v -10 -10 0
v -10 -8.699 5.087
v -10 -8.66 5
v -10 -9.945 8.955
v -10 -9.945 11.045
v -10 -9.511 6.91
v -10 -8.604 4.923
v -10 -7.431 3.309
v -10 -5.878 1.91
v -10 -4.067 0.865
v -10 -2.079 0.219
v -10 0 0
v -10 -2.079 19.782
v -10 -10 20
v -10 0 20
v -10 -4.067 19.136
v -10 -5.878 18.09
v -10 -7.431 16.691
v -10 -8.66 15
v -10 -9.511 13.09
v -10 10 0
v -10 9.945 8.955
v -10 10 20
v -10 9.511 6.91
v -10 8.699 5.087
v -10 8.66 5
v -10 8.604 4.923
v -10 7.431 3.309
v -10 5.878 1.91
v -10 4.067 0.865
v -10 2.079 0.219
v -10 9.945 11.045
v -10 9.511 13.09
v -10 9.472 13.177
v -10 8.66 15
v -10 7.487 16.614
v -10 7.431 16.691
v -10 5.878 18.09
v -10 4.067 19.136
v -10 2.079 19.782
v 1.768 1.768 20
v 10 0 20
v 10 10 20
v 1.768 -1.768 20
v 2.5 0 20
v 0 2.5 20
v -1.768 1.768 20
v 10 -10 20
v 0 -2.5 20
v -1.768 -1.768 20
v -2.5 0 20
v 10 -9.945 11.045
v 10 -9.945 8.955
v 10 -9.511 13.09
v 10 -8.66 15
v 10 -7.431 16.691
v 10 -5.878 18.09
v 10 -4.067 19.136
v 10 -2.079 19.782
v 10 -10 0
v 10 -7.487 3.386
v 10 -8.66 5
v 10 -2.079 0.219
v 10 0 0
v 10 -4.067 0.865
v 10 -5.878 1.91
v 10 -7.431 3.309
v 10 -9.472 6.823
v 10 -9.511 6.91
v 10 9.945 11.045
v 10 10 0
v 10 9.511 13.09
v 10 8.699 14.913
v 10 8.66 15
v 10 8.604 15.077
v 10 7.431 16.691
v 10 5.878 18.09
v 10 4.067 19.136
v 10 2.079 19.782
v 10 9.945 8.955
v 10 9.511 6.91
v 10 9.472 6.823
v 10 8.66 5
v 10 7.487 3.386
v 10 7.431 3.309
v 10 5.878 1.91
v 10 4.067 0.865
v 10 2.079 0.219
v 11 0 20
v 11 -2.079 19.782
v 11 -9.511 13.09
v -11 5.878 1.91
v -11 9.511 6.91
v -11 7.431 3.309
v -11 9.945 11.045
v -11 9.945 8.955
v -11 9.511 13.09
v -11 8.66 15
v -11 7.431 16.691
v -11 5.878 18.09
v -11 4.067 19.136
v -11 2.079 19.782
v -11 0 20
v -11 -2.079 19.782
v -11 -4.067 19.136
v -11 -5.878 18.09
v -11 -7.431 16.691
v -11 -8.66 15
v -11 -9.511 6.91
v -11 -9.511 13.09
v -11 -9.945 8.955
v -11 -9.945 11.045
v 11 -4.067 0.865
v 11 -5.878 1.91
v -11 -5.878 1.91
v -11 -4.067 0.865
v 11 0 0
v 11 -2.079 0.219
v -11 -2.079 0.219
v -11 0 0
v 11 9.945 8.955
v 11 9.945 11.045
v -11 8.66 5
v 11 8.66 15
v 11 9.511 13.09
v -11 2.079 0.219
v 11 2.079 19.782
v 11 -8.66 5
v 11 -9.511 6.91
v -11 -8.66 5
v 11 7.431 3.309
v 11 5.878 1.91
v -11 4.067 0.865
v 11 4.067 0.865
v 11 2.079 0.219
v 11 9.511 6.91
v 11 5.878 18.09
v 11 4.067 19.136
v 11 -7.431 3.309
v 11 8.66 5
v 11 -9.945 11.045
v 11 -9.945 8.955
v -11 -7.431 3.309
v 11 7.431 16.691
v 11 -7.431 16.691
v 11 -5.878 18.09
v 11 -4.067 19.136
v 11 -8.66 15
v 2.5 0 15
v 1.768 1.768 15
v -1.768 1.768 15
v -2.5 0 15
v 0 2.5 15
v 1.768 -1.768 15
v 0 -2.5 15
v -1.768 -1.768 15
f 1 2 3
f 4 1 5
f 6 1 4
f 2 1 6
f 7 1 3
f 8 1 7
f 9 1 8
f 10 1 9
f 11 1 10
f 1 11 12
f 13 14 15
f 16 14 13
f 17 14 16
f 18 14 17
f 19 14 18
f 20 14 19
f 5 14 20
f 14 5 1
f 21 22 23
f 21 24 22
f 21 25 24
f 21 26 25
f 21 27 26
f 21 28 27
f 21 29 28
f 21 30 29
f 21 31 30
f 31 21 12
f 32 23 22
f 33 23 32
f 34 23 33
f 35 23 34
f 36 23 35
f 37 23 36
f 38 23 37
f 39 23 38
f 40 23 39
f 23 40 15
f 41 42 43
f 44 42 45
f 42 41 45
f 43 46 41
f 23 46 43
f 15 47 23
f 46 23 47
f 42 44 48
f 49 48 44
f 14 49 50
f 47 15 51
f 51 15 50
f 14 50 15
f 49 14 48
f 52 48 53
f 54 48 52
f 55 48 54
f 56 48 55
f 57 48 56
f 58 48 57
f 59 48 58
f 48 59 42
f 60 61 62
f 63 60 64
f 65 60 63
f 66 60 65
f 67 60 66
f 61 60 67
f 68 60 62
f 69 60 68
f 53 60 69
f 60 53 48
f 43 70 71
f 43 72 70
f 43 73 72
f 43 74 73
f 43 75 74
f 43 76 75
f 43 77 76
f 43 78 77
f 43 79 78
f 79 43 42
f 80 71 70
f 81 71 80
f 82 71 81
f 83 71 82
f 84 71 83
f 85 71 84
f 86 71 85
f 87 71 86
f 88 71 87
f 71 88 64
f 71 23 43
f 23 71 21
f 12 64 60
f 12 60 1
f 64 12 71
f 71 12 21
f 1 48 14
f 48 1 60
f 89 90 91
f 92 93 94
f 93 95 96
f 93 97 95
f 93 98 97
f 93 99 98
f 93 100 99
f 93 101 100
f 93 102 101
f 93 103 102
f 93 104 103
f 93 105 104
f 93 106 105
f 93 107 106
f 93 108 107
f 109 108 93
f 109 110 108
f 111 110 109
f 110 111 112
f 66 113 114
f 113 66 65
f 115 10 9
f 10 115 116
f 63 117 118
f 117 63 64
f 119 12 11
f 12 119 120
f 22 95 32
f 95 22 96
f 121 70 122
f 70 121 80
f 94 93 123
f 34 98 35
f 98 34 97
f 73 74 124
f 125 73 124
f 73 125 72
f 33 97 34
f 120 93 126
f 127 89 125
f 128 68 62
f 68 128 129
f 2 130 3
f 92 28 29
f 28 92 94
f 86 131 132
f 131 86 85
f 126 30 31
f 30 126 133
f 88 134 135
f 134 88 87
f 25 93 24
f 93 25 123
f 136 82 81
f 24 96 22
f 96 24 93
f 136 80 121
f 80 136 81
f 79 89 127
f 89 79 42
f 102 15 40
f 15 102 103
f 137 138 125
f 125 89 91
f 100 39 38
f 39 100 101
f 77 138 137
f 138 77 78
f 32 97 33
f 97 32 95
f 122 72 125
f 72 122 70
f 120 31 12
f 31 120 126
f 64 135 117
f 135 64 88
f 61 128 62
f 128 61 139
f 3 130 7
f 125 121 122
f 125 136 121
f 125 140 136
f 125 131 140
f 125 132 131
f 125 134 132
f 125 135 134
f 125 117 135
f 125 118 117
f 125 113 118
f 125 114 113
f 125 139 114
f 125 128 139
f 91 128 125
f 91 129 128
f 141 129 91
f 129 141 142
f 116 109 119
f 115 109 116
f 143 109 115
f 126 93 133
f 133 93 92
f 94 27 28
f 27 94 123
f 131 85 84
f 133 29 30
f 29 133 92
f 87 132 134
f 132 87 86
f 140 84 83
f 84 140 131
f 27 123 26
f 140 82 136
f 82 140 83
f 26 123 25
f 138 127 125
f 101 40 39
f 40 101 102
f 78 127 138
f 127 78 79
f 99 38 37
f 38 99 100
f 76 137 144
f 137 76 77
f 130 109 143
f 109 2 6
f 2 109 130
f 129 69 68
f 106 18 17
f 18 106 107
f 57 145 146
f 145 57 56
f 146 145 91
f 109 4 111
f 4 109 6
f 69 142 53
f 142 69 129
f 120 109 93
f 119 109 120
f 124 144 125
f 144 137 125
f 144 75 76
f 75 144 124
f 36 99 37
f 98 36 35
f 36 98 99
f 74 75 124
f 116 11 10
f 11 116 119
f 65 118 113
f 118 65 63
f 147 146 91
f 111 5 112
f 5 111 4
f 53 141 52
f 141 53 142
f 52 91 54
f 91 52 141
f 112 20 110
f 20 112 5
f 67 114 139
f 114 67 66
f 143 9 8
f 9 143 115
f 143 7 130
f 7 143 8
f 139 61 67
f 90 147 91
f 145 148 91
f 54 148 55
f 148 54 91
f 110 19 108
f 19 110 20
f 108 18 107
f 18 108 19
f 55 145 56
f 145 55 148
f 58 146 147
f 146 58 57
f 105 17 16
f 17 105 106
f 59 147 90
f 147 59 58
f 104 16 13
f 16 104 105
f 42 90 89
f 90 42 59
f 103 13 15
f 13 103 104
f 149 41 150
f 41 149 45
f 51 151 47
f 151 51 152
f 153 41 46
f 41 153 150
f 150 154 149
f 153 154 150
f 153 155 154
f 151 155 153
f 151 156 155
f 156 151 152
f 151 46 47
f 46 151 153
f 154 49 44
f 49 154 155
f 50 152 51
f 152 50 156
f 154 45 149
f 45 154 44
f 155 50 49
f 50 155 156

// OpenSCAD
cube_size = 20; // [10:Small,20:Medium,30:Large]

hole_diameter = 5; 
hole_radius = hole_diameter/2;

// How deep should the center hole be?
hole_depth = 5; // [0,1,5,50]

show_wheels = "yes"; // [yes,no]

// How thick should the side wheels be?
wheel_thickness = 1; // [1:40]

// ignore this variable!
// foo=1;

// don't turn functions into params!
function BEZ03(u) = pow((1-u), 3);

// ignore variable values
bing = 3+4;
baz = 3 / hole_depth;

difference() {
  union() {
    translate([0, 0, cube_size/2]) cube([cube_size,cube_size,cube_size], center=true);
    if (show_wheels == "yes") {
      translate([0, 0, cube_size/2]) rotate([0, 90, 0]) {
        cylinder(r=cube_size/2, h=cube_size+(wheel_thickness*2), center=true);
      }
    }
  }
  translate([0, 0, cube_size-hole_depth]) cylinder(r=hole_radius, h=hole_depth);
}
        
